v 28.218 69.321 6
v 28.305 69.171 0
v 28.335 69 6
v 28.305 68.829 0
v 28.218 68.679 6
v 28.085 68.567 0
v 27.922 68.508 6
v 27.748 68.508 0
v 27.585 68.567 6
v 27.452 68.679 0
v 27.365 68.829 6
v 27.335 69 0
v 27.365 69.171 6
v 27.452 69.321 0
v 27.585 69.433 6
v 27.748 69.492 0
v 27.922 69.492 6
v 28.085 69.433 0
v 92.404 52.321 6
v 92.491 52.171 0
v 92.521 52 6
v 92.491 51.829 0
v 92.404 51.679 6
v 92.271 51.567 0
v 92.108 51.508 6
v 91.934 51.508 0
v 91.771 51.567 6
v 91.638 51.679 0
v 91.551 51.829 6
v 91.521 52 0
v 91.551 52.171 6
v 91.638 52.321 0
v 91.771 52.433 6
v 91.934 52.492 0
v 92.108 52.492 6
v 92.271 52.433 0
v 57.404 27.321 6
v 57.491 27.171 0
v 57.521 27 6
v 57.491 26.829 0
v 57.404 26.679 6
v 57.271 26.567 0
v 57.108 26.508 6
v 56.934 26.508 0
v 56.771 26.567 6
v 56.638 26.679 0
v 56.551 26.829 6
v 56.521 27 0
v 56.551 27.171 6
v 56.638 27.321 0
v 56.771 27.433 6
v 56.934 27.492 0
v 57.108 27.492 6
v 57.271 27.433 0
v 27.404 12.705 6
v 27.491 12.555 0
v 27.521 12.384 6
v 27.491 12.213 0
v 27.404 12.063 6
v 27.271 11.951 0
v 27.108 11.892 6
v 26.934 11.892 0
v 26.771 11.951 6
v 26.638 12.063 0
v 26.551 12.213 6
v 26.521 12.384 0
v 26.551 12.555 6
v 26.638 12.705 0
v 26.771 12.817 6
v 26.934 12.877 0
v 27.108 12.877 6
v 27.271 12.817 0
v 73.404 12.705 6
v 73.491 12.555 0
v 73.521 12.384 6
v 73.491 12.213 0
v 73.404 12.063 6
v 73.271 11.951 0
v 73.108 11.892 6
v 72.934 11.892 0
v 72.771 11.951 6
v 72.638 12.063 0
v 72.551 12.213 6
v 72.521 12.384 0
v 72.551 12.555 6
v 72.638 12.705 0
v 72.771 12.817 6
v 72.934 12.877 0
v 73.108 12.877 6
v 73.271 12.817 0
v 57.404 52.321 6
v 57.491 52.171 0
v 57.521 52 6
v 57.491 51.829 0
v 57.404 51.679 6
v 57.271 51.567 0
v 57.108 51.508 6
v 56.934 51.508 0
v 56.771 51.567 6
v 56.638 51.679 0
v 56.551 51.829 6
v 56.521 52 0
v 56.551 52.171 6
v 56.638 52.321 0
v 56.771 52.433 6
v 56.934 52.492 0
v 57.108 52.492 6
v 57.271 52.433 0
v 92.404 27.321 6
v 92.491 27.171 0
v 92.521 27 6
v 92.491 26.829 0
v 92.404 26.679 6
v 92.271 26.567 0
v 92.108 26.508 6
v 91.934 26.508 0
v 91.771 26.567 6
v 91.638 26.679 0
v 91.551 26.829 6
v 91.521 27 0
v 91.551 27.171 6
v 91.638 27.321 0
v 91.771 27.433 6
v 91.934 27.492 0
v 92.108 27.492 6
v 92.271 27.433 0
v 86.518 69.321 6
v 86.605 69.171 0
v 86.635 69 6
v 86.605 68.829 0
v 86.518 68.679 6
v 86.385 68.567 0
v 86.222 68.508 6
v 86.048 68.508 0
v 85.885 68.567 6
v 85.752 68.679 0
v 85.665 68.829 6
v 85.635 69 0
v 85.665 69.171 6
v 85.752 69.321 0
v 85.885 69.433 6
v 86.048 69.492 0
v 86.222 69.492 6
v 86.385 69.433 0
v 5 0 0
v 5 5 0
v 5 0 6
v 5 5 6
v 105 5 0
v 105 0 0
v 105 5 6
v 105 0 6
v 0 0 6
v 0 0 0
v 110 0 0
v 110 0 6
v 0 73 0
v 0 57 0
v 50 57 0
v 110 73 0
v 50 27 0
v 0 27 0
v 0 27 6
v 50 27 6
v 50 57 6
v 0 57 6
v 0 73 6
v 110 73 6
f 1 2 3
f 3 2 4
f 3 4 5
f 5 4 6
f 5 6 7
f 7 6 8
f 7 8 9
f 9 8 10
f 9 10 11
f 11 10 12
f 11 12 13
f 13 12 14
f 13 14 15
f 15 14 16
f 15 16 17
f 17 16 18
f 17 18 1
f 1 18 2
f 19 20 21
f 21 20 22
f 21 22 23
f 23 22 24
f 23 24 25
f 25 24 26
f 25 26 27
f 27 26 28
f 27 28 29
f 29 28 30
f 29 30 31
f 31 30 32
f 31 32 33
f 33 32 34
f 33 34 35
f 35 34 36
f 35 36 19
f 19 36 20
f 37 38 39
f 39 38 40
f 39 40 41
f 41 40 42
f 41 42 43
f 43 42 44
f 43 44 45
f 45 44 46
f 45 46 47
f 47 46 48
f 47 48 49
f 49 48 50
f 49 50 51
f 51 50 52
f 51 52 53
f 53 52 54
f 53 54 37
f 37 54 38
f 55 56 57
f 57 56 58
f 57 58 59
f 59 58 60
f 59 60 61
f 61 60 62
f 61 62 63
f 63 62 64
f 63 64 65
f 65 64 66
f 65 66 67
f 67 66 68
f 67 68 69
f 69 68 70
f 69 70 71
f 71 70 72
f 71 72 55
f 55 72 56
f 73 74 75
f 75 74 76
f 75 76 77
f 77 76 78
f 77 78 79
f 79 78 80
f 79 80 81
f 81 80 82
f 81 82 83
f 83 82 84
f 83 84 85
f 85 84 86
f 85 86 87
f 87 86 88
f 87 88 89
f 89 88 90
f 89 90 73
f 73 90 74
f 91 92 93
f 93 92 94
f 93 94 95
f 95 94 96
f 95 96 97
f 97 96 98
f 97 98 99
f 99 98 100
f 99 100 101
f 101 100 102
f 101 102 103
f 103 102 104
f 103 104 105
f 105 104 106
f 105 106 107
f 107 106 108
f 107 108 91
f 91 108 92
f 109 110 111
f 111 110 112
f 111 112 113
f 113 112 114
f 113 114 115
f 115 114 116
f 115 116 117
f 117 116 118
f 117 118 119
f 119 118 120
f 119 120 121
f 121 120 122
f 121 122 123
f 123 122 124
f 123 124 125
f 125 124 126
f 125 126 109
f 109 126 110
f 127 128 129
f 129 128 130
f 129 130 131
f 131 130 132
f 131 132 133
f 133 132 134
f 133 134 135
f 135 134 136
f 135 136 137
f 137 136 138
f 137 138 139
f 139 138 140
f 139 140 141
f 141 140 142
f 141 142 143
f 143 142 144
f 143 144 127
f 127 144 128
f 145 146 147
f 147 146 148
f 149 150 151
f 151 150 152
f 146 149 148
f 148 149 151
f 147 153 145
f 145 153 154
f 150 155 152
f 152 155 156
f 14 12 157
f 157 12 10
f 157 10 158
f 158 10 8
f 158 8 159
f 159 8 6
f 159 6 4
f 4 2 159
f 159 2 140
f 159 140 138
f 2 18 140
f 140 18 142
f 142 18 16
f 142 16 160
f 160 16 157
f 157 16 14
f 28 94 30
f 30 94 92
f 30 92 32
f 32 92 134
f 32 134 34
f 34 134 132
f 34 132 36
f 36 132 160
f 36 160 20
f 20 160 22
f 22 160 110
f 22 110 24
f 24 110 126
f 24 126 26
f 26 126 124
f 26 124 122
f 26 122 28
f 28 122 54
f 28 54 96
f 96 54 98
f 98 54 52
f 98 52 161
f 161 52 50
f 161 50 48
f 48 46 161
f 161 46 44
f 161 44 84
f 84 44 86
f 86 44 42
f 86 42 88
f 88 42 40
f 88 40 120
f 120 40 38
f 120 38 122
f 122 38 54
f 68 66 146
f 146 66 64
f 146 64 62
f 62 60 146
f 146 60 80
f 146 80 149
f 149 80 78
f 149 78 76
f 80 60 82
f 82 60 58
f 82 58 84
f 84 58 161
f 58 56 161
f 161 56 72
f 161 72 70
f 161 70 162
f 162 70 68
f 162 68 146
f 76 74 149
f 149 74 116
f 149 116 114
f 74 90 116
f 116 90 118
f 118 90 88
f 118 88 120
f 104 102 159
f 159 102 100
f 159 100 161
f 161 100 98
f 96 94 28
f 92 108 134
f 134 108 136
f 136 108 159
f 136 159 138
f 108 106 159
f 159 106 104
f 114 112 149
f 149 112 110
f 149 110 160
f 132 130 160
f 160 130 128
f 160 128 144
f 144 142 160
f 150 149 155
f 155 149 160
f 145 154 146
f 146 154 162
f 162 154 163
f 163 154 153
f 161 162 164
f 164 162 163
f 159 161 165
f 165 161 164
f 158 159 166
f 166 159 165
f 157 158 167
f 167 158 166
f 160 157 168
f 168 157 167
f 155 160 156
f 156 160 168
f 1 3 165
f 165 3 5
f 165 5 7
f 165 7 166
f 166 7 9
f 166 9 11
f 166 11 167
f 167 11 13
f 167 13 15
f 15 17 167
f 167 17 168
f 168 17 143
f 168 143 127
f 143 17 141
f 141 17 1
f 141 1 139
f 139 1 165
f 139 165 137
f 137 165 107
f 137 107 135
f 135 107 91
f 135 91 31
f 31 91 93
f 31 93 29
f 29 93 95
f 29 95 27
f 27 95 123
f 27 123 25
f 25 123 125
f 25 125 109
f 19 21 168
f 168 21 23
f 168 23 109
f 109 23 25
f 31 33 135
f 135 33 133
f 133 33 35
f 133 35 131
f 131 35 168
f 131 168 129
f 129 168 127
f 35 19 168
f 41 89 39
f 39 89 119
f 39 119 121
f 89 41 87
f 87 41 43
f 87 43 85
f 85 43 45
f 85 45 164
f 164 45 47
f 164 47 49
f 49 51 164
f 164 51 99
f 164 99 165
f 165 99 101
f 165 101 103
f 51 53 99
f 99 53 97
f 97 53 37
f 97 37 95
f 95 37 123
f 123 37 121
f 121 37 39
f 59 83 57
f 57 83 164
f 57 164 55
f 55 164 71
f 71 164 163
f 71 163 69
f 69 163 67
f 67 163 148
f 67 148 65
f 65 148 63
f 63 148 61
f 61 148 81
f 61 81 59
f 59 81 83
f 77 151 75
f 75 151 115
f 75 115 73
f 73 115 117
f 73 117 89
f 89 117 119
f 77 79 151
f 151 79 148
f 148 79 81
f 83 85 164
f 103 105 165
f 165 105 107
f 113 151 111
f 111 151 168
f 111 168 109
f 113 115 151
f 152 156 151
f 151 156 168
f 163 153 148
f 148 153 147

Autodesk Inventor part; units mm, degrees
ref_plane "YZ Plane" through (0, 0, 0) normal (1, 0, 0) x (0, 1, 0)
ref_plane "XZ Plane" through (0, 0, 0) normal (0, 1, 0) x (-1, 0, 0)
ref_plane "XY Plane" through (0, 0, 0) normal (0, 0, 1) x (1, 0, 0)
sketch "Sketch1" plane through (0, 0, 0) normal (0, 0, 1) x (1, 0, 0)
  line L0 (0, 0) -> (110, 0)
  line L1 (110, 0) -> (110, 73)
  line L2 (110, 73) -> (0, 73)
  line L3 (6, 57) -> (50, 57)
  line L4 (50, 57) -> (50, 27)
  line L5 (6, 57) -> (0, 57)
  line L6 (0, 73) -> (0, 57)
  line L7 (0, 27) -> (0, 0)
  line L8 (0, 27) -> (50, 27)
  dimension "d0" = 110
  dimension "d2" = 16
  dimension "d19" = 57
  dimension "d22" = 50
  dimension "d66" = 30
extrude "Extrusion1" add sketch "Sketch1" along normal blind 6
sketch "Sketch2" plane through (0, 0, 6) normal (0, 0, 1) x (1, 0, 0)
  line L0 (105, 0) -> (105, 5)
  line L1 (105, 5) -> (5, 5)
  line L2 (5, 5) -> (5, 0)
  line L3 (0, 27) -> (0, 0) projected
  line L4 (0, 0) -> (110, 0) projected
  dimension "d13" = 100
  dimension "d14" = 5
  dimension "d15" = 5
extrude "Extrusion2" cut sketch "Sketch2" against normal blind 10
sketch "Sketch3" plane through (0, 0, 0) normal (0, 0, -1) x (-1, 0, 0)
  line L0 (-331.8351, -68) -> (-331.8351, 72) construction
  line L1 (218.6881, -67.4159) -> (-331.3119, -67.4159)
  line L2 (-331.8351, 72) -> (218.1649, 72)
  line L3 (-50.021, 72.5841) -> (-50.021, -67.4159)
  line L4 (-301.8351, 60.0199) -> (-301.8351, -95.3329) construction
  line L5 (-194.8351, 50.8275) -> (-194.8351, -92.5752) construction
  line L6 (-289.8351, 60.0199) -> (-289.8351, -99.0099) construction
  line L7 (-182.8351, -92.5752) -> (-182.8351, 81.6223) construction
  line L8 (-224.6619, -78.1083) -> (-224.6619, -12.2159) construction
  line L9 (-184.2519, -76.0321) -> (-184.2519, -10.2421) construction
  line L10 (-223.8335, -61.4159) -> (-147.922, -61.4159) construction
  line L11 (-179.8519, -67.4159) -> (-179.8519, -42.4159) construction
  line L12 (-229.1619, -42.4159) -> (-229.1619, -67.4159) construction
  line L13 (-73.021, 109.947) -> (-73.021, -118.6448) construction
  line L14 (-147.521, 95.654) -> (-147.521, -118.6448) construction
  line L15 (-208.521, 101.2387) -> (-208.521, -106.3335) construction
  line L16 (-237.7385, -71.614) -> (-237.7385, -46.614)
  line L17 (243.9615, -46.614) -> (243.9615, -71.614)
  line L18 (-92.021, 52) -> (-57.021, 52) construction
  line L19 (-57.021, 52) -> (-57.021, 27) construction
  line L20 (-57.021, 27) -> (-92.021, 27) construction
  line L21 (-92.021, 27) -> (-92.021, 52) construction
  line L22 (-301.8351, 2.5165) -> (201.7932, 2.5165) construction
  line L23 (-105, 0) -> (-105, 5) projected
  line L24 (-105, 5) -> (-5, 5) projected
  line L25 (-5, 5) -> (-5, 0) projected
  line L26 (0, 0) -> (-5, 0) projected
  line L27 (0, 27) -> (0, 0) projected
  line L28 (-50, 27) -> (0, 27) projected
  line L29 (-50, 57) -> (-50, 27) projected
  line L30 (0, 57) -> (-50, 57) projected
  line L31 (0, 73) -> (0, 57) projected
  line L32 (-110, 73) -> (0, 73) projected
  line L33 (-110, 0) -> (-110, 73) projected
  line L34 (-105, 0) -> (-110, 0) projected
  point P0 (-53.9258, 1.4801)
  point P1 (-331.3119, -67.4159)
  point P2 (-266.7948, -13.3199)
  point P3 (-301.8351, 60.0199)
  point P4 (-301.8351, -95.3329)
  point P5 (-289.8351, 2.5165)
  point P6 (-194.8351, 2.5165)
  point P7 (-182.8351, 2.5165)
  point P8 (189.7932, 2.5165)
  point P9 (94.7932, 2.5165)
  point P10 (82.7932, 2.5165)
  point P11 (-50.021, -58.9159)
  point P12 (-224.6619, -61.4159)
  point P13 (-184.2519, -61.4159)
  point P14 (124.6199, -61.4159)
  point P15 (84.2099, -61.4159)
  point P16 (-73.021, 12.3841)
  point P17 (-27.021, 12.3841)
  point P18 (-319.3351, 69)
  point P19 (-261.0351, 69)
  point P20 (-202.7351, 69)
  point P21 (-144.4351, 69)
  point P22 (-86.1351, 69)
  point P23 (-27.8351, 69)
  point P24 (30.4649, 69)
  point P25 (88.7649, 69)
  point P26 (147.0649, 69)
  point P27 (205.3649, 69)
  point P28 (-325.3351, 62)
  point P29 (-325.3351, 54)
  point P30 (-325.3351, 46)
  point P31 (-325.3351, 38)
  point P32 (-325.3351, 30)
  point P33 (-325.3351, 22)
  point P34 (-325.3351, 14)
  point P35 (-325.3351, 6)
  point P36 (-325.3351, -2)
  point P37 (-325.3351, -10)
  point P38 (-325.3351, -18)
  point P39 (-325.3351, -26)
  point P40 (-325.3351, -34)
  point P41 (225.2932, -34)
  point P42 (225.2932, -26)
  point P43 (225.2932, -18)
  point P44 (225.2932, -10)
  point P45 (225.2932, -2)
  point P46 (225.2932, 6)
  point P47 (225.2932, 14)
  point P48 (225.2932, 22)
  point P49 (225.2932, 30)
  point P50 (225.2932, 38)
  point P51 (225.2932, 46)
  point P52 (225.2932, 54)
  point P53 (225.2932, 62)
  point P54 (-242.2385, -65.614)
  point P55 (248.4615, -65.614)
  dimension "d32" = 30
  dimension "d33" = 12
  dimension "d34" = 137
  dimension "d35" = 12
  dimension "d36" = 8.5
  dimension "d37" = 4.4
  dimension "d38" = 4.5
  dimension "d39" = 6
  dimension "d40" = 23
  dimension "d41" = 97.5
  dimension "d42" = 158.5
  dimension "d43" = 3
  dimension "d44" = 12.5
  dimension "d45" = 58.3
  dimension "d46" = 6.5
  dimension "d47" = 10
  dimension "d48" = 8
  dimension "d49" = 35
  dimension "d50" = 35
  dimension "d51" = 25
  dimension "d52" = 4.5
  dimension "d53" = 4.5
  dimension "d56" = 20
  dimension "d57" = 7
  dimension "d58" = 1
hole "Hole1" at (50.021, -58.9159, 0) at (301.8351, 2.5165, 0) at (242.2385, -65.614, 0) at (194.8351, 2.5165, 0) at (289.8351, 2.5165, 0) at (182.8351, 2.5165, 0) at (-189.7932, 2.5165, 0) at (-201.7932, 2.5165, 0) at (-94.7932, 2.5165, 0) at (-82.7932, 2.5165, 0) at (224.6619, -61.4159, 0) at (184.2519, -61.4159, 0) at (-124.6199, -61.4159, 0) at (-84.2099, -61.4159, 0) at (73.021, 12.3841, 0) at (27.021, 12.3841, 0) at (325.3351, 62, 0) at (325.3351, 54, 0) at (325.3351, 46, 0) at (325.3351, 38, 0) at (325.3351, 30, 0) at (325.3351, 22, 0) at (325.3351, 14, 0) at (325.3351, 6, 0) at (325.3351, -2, 0) at (325.3351, -10, 0) at (325.3351, -18, 0) at (325.3351, -26, 0) at (325.3351, -34, 0) at (-225.2932, -34, 0) at (-225.2932, -26, 0) at (-225.2932, -18, 0) at (-225.2932, -10, 0) at (-225.2932, -2, 0) at (-225.2932, 6, 0) at (-225.2932, 14, 0) at (-225.2932, 22, 0) at (-225.2932, 30, 0) at (-225.2932, 38, 0) at (-225.2932, 46, 0) at (-225.2932, 54, 0) at (-225.2932, 62, 0) at (57.021, 52, 0) at (57.021, 27, 0) at (92.021, 27, 0) at (92.021, 52, 0) at (-248.4615, -65.614, 0) at (27.8351, 69, 0) at (86.1351, 69, 0) direction (0, 0, 1) diameter 1 end through all
properties part number "cerceau_front"
